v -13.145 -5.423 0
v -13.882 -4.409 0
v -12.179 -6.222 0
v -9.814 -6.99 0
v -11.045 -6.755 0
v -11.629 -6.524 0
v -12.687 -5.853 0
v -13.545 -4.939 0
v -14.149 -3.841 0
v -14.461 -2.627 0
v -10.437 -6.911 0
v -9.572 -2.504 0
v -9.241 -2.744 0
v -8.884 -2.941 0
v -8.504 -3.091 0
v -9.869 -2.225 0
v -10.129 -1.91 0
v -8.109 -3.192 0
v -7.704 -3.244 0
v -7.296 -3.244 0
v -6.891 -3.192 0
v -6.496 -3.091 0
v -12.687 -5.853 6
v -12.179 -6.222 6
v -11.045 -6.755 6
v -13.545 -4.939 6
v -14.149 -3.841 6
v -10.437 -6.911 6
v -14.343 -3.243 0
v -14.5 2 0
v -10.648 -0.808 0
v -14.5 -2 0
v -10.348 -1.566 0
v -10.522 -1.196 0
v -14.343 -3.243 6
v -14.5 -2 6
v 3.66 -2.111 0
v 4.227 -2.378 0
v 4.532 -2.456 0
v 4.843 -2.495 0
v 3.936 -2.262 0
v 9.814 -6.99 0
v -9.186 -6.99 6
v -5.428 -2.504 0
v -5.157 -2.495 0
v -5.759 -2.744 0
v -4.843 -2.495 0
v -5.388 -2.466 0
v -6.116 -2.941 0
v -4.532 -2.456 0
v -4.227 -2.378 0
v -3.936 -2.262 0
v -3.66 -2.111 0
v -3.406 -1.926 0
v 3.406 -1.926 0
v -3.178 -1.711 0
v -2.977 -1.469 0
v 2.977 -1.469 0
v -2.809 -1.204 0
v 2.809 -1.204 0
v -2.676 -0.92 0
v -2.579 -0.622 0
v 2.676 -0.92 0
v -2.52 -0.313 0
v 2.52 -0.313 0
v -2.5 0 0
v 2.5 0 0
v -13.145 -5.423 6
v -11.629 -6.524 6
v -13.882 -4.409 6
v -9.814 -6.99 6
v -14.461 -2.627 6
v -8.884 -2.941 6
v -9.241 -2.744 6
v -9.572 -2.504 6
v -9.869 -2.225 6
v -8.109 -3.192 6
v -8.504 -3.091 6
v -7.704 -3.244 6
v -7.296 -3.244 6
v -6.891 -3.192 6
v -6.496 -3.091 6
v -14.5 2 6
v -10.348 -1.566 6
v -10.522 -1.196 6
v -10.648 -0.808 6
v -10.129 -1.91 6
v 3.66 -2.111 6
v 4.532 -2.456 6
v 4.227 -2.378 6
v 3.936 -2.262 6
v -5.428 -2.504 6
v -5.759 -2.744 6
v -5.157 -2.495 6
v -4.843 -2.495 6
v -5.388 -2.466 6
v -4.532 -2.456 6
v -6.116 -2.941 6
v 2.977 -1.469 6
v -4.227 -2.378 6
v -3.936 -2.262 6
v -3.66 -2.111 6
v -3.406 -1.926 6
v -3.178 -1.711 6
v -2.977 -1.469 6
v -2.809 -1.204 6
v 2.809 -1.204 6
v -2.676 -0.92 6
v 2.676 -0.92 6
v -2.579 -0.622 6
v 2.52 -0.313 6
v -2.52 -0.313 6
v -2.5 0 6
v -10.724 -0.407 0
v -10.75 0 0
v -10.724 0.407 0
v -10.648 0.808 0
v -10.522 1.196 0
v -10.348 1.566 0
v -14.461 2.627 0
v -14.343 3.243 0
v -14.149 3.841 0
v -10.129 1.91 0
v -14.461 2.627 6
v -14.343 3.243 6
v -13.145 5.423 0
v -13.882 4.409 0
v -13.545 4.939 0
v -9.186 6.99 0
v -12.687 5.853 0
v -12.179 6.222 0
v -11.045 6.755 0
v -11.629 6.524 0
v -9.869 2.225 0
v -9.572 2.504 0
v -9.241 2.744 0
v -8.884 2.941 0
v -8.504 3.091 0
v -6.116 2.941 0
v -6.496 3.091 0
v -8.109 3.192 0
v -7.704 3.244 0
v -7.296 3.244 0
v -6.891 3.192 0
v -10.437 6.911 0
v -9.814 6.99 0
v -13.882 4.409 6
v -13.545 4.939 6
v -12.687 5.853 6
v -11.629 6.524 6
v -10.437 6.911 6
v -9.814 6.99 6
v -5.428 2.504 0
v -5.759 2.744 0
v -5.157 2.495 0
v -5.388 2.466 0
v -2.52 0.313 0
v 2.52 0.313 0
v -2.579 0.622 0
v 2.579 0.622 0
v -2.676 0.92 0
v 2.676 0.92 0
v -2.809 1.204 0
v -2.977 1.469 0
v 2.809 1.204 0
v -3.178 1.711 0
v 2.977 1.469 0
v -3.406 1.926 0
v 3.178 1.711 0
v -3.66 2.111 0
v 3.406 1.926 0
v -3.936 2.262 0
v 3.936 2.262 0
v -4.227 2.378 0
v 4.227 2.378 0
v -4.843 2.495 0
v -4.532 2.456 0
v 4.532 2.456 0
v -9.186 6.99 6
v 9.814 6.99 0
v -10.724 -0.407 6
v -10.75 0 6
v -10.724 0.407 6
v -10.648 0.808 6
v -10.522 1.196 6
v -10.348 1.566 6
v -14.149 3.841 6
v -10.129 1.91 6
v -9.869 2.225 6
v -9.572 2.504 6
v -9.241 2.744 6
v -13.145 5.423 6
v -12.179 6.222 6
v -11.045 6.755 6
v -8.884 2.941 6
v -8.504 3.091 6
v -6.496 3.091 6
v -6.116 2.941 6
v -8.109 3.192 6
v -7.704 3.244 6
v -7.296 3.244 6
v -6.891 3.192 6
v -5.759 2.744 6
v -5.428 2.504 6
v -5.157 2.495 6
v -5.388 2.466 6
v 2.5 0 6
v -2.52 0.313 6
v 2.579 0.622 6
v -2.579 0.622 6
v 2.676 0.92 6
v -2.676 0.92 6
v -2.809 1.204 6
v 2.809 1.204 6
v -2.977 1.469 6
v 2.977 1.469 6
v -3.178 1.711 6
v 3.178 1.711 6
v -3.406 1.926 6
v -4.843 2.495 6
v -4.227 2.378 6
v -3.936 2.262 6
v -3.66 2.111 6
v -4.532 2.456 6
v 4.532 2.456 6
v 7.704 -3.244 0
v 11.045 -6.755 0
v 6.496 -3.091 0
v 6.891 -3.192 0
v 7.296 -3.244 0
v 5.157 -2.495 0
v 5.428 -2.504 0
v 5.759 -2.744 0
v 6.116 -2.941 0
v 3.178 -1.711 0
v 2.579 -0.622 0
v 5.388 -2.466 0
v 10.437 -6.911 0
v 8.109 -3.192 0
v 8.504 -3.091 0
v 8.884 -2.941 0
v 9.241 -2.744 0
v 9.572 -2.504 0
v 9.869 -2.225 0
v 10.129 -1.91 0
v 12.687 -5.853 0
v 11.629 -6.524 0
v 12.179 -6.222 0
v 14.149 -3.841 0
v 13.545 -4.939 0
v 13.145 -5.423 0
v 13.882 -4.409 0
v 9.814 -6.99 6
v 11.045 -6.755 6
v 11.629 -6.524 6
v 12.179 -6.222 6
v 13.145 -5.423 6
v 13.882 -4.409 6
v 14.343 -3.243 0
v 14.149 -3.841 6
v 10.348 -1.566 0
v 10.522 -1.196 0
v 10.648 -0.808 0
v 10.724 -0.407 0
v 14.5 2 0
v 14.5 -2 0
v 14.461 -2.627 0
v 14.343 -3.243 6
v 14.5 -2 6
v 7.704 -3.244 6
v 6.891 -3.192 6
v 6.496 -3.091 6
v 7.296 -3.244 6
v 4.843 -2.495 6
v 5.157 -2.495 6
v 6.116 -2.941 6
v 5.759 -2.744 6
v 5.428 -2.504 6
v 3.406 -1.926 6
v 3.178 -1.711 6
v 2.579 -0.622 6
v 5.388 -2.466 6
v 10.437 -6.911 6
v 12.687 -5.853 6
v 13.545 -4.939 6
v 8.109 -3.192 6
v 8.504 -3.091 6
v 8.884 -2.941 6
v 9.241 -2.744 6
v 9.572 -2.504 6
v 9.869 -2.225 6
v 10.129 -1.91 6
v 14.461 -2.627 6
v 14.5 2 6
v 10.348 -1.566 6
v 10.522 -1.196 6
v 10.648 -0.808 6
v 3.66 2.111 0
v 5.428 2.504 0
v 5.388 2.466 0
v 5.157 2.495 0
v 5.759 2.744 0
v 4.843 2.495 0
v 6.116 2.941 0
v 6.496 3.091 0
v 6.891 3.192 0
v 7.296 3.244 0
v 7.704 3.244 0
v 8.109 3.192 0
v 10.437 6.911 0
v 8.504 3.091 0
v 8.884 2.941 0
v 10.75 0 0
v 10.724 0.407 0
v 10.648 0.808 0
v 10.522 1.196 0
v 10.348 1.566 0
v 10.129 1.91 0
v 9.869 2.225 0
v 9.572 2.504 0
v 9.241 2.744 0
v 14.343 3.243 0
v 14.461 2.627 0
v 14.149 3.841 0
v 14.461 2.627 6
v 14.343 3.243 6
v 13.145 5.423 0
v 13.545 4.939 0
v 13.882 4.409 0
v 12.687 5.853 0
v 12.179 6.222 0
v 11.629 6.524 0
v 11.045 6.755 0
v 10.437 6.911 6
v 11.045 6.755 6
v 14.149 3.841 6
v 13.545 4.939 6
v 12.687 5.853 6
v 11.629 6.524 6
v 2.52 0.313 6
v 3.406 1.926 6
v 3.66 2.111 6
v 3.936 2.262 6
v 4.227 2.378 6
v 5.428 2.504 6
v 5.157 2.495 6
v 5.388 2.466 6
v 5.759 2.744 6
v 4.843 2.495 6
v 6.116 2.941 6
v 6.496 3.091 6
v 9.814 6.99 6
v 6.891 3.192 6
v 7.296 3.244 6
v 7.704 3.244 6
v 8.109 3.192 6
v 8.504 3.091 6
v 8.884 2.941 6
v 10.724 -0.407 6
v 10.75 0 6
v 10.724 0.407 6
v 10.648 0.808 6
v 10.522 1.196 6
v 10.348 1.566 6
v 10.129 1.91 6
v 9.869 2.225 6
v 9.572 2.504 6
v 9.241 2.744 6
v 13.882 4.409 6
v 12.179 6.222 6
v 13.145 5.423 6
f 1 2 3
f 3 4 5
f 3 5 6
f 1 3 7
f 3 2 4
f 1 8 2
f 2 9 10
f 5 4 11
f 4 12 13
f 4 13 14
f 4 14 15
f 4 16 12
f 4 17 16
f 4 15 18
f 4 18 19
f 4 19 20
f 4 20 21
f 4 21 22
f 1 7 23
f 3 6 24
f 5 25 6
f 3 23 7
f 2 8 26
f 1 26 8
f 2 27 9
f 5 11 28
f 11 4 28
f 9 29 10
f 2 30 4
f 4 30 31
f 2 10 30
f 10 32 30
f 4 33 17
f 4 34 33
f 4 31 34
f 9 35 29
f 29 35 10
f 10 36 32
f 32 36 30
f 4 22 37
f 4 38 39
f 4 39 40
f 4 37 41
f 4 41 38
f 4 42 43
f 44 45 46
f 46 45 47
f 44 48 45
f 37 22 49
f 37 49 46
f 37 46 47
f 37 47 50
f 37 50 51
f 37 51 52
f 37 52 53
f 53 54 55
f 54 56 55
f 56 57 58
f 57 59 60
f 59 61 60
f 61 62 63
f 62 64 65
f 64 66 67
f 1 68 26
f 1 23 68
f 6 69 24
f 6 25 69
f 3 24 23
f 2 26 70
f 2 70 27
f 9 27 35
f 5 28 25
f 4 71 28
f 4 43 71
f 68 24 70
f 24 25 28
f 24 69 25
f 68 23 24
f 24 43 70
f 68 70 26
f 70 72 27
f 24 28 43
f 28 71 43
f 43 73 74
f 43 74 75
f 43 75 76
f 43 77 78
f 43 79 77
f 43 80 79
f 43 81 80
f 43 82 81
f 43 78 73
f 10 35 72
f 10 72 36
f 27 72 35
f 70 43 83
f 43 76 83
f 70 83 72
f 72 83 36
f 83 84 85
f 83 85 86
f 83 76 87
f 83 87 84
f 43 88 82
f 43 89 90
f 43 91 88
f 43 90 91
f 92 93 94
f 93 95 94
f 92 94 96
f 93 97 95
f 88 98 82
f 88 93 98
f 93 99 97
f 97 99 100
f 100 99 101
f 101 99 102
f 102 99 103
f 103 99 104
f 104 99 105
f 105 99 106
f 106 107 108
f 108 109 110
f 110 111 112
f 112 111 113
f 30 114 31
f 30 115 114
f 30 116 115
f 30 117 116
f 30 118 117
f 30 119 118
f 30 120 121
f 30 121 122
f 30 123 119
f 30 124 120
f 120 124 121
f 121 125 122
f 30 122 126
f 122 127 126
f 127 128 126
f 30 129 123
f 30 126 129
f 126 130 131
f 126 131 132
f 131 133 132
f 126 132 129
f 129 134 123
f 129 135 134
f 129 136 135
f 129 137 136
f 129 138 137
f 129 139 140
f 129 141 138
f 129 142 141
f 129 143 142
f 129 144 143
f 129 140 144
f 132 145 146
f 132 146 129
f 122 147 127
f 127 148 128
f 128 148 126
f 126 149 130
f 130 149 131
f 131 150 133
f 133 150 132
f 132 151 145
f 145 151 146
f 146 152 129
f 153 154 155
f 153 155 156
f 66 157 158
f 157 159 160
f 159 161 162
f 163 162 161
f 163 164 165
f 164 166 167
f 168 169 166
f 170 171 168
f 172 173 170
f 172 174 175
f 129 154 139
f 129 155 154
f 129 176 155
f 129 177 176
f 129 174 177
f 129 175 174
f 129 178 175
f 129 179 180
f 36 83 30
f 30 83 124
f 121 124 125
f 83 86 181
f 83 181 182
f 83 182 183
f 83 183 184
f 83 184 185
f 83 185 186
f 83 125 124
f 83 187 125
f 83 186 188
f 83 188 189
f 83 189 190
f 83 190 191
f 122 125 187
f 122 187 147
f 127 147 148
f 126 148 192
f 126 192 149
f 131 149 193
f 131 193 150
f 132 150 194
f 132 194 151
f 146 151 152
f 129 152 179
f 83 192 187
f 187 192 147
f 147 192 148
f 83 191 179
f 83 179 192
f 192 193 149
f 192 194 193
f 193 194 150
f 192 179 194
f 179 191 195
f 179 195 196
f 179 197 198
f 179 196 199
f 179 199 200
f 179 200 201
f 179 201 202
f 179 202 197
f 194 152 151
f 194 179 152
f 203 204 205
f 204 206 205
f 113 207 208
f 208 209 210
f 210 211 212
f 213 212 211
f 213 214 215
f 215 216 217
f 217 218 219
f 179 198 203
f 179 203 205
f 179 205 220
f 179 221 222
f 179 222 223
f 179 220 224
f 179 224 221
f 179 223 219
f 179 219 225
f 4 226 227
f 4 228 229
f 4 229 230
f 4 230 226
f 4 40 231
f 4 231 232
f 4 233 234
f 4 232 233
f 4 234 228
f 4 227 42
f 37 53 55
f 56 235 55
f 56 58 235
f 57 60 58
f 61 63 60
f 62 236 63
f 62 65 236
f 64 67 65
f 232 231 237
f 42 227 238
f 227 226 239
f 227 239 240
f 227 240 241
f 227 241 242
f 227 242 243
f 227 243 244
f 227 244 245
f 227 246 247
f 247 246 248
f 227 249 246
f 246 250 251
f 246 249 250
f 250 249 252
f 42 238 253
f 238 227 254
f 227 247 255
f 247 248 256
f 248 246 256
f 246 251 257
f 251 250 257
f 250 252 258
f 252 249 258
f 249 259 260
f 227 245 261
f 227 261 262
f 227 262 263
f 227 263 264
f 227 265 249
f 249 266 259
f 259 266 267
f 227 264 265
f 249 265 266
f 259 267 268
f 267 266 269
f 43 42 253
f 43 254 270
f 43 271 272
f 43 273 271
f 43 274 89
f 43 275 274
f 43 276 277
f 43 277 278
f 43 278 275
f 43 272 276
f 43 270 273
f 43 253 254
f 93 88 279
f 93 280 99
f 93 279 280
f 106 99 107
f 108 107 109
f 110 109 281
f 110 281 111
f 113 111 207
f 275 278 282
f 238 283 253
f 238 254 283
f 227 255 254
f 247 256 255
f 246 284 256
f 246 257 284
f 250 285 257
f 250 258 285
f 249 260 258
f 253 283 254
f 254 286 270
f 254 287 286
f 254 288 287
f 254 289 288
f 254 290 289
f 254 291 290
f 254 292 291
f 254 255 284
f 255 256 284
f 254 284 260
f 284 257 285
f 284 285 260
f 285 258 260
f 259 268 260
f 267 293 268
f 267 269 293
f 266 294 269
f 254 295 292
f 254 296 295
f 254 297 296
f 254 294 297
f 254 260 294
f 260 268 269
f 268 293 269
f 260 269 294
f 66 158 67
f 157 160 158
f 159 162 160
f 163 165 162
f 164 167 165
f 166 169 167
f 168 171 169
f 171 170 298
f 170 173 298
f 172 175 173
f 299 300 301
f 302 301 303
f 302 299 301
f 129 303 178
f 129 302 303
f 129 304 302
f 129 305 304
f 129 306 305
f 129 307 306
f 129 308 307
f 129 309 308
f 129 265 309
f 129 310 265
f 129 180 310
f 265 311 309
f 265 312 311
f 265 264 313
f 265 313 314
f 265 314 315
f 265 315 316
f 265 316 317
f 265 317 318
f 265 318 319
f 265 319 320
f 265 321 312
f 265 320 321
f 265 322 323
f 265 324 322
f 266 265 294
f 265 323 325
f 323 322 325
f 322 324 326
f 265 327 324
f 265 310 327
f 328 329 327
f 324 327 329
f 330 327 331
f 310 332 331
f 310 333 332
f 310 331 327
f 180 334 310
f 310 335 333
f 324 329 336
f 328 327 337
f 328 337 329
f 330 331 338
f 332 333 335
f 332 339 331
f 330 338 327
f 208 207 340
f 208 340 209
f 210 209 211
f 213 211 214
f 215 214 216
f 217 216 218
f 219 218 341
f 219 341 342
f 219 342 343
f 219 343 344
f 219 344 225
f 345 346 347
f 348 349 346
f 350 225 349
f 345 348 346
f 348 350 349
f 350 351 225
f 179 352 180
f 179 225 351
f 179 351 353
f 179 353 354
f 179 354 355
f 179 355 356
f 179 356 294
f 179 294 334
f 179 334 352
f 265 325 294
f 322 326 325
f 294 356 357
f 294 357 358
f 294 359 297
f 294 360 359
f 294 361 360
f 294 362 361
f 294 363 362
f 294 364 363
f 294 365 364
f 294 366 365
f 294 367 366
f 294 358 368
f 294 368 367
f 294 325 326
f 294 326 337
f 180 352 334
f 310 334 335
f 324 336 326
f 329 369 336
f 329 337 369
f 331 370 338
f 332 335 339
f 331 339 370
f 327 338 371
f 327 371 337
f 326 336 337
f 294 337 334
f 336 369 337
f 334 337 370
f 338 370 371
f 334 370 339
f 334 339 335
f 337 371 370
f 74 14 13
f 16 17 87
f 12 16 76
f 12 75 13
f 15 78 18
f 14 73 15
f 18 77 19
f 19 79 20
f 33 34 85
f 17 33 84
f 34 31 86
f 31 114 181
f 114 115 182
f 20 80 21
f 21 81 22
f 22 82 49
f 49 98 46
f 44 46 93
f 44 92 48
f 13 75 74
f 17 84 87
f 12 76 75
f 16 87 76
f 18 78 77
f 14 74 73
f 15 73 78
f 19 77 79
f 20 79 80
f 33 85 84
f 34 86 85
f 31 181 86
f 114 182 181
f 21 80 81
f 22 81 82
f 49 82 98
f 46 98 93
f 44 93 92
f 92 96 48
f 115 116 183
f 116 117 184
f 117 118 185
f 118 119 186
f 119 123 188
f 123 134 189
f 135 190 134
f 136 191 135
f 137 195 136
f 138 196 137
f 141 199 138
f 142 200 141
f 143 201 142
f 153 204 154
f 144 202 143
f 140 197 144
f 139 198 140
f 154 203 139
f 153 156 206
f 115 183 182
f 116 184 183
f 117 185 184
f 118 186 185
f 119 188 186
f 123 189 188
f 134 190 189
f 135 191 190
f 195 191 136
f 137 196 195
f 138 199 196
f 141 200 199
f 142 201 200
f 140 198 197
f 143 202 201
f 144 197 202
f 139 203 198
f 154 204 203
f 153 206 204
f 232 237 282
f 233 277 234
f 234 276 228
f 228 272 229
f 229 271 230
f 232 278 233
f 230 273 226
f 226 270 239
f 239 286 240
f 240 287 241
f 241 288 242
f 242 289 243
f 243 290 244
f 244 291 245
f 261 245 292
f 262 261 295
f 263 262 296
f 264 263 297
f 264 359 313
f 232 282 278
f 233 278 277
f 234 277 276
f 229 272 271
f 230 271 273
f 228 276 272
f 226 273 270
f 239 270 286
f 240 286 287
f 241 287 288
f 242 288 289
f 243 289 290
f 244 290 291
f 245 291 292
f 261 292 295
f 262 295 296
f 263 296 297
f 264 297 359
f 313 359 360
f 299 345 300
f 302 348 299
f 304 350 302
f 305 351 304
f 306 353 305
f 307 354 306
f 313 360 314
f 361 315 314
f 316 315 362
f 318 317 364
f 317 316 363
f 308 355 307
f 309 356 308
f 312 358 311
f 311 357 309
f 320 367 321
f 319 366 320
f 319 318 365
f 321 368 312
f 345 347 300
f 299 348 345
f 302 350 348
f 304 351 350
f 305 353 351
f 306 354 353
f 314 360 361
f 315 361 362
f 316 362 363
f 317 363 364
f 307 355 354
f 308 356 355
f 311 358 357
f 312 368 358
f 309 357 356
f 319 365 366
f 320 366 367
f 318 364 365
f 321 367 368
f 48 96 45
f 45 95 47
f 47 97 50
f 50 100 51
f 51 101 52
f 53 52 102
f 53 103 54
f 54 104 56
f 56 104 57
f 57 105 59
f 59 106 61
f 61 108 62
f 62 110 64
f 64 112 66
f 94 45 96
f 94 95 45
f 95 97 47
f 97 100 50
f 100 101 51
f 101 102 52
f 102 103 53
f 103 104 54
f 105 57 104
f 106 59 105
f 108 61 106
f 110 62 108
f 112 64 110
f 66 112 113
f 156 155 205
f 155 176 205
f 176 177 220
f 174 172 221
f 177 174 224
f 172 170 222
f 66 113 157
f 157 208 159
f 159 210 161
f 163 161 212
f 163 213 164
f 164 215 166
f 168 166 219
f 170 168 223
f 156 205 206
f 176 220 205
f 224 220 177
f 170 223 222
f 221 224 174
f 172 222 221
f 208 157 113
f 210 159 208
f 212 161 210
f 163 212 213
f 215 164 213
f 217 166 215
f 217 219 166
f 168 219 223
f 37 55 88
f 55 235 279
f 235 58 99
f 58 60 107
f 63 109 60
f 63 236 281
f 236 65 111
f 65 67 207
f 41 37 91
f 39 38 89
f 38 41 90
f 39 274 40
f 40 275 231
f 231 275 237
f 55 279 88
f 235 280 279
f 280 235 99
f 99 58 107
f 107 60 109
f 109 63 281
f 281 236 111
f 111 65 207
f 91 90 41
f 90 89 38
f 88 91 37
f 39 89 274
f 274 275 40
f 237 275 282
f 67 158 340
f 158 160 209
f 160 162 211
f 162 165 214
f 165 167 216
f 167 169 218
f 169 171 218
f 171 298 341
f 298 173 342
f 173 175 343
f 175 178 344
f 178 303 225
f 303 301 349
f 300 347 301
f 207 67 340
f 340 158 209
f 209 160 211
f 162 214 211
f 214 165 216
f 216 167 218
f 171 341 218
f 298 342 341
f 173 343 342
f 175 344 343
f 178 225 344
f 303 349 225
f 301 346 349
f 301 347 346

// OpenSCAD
$fn = 50;

difference() {
	union() {
		hull() {
			translate(v = [-9.5, 2.0, 0]) {
				cylinder(h = 6, r = 5);
			}
			translate(v = [9.5, 2.0, 0]) {
				cylinder(h = 6, r = 5);
			}
			translate(v = [-9.5, -2.0, 0]) {
				cylinder(h = 6, r = 5);
			}
			translate(v = [9.5, -2.0, 0]) {
				cylinder(h = 6, r = 5);
			}
		}
	}
	union() {
		translate(v = [-7.5, 0.0, -100.0]) {
			cylinder(h = 200, r = 3.25);
		}
		translate(v = [7.5, 0.0, -100.0]) {
			cylinder(h = 200, r = 3.25);
		}
		translate(v = [-7.5, 0.0, -100.0]) {
			cylinder(h = 200, r = 1.8);
		}
		translate(v = [7.5, 0.0, -100.0]) {
			cylinder(h = 200, r = 1.8);
		}
		translate(v = [-5.0, 0, 0.0]) {
			cylinder(h = 6, r = 2.5);
		}
		translate(v = [5.0, 0, 0.0]) {
			cylinder(h = 6, r = 2.5);
		}
	}
}
